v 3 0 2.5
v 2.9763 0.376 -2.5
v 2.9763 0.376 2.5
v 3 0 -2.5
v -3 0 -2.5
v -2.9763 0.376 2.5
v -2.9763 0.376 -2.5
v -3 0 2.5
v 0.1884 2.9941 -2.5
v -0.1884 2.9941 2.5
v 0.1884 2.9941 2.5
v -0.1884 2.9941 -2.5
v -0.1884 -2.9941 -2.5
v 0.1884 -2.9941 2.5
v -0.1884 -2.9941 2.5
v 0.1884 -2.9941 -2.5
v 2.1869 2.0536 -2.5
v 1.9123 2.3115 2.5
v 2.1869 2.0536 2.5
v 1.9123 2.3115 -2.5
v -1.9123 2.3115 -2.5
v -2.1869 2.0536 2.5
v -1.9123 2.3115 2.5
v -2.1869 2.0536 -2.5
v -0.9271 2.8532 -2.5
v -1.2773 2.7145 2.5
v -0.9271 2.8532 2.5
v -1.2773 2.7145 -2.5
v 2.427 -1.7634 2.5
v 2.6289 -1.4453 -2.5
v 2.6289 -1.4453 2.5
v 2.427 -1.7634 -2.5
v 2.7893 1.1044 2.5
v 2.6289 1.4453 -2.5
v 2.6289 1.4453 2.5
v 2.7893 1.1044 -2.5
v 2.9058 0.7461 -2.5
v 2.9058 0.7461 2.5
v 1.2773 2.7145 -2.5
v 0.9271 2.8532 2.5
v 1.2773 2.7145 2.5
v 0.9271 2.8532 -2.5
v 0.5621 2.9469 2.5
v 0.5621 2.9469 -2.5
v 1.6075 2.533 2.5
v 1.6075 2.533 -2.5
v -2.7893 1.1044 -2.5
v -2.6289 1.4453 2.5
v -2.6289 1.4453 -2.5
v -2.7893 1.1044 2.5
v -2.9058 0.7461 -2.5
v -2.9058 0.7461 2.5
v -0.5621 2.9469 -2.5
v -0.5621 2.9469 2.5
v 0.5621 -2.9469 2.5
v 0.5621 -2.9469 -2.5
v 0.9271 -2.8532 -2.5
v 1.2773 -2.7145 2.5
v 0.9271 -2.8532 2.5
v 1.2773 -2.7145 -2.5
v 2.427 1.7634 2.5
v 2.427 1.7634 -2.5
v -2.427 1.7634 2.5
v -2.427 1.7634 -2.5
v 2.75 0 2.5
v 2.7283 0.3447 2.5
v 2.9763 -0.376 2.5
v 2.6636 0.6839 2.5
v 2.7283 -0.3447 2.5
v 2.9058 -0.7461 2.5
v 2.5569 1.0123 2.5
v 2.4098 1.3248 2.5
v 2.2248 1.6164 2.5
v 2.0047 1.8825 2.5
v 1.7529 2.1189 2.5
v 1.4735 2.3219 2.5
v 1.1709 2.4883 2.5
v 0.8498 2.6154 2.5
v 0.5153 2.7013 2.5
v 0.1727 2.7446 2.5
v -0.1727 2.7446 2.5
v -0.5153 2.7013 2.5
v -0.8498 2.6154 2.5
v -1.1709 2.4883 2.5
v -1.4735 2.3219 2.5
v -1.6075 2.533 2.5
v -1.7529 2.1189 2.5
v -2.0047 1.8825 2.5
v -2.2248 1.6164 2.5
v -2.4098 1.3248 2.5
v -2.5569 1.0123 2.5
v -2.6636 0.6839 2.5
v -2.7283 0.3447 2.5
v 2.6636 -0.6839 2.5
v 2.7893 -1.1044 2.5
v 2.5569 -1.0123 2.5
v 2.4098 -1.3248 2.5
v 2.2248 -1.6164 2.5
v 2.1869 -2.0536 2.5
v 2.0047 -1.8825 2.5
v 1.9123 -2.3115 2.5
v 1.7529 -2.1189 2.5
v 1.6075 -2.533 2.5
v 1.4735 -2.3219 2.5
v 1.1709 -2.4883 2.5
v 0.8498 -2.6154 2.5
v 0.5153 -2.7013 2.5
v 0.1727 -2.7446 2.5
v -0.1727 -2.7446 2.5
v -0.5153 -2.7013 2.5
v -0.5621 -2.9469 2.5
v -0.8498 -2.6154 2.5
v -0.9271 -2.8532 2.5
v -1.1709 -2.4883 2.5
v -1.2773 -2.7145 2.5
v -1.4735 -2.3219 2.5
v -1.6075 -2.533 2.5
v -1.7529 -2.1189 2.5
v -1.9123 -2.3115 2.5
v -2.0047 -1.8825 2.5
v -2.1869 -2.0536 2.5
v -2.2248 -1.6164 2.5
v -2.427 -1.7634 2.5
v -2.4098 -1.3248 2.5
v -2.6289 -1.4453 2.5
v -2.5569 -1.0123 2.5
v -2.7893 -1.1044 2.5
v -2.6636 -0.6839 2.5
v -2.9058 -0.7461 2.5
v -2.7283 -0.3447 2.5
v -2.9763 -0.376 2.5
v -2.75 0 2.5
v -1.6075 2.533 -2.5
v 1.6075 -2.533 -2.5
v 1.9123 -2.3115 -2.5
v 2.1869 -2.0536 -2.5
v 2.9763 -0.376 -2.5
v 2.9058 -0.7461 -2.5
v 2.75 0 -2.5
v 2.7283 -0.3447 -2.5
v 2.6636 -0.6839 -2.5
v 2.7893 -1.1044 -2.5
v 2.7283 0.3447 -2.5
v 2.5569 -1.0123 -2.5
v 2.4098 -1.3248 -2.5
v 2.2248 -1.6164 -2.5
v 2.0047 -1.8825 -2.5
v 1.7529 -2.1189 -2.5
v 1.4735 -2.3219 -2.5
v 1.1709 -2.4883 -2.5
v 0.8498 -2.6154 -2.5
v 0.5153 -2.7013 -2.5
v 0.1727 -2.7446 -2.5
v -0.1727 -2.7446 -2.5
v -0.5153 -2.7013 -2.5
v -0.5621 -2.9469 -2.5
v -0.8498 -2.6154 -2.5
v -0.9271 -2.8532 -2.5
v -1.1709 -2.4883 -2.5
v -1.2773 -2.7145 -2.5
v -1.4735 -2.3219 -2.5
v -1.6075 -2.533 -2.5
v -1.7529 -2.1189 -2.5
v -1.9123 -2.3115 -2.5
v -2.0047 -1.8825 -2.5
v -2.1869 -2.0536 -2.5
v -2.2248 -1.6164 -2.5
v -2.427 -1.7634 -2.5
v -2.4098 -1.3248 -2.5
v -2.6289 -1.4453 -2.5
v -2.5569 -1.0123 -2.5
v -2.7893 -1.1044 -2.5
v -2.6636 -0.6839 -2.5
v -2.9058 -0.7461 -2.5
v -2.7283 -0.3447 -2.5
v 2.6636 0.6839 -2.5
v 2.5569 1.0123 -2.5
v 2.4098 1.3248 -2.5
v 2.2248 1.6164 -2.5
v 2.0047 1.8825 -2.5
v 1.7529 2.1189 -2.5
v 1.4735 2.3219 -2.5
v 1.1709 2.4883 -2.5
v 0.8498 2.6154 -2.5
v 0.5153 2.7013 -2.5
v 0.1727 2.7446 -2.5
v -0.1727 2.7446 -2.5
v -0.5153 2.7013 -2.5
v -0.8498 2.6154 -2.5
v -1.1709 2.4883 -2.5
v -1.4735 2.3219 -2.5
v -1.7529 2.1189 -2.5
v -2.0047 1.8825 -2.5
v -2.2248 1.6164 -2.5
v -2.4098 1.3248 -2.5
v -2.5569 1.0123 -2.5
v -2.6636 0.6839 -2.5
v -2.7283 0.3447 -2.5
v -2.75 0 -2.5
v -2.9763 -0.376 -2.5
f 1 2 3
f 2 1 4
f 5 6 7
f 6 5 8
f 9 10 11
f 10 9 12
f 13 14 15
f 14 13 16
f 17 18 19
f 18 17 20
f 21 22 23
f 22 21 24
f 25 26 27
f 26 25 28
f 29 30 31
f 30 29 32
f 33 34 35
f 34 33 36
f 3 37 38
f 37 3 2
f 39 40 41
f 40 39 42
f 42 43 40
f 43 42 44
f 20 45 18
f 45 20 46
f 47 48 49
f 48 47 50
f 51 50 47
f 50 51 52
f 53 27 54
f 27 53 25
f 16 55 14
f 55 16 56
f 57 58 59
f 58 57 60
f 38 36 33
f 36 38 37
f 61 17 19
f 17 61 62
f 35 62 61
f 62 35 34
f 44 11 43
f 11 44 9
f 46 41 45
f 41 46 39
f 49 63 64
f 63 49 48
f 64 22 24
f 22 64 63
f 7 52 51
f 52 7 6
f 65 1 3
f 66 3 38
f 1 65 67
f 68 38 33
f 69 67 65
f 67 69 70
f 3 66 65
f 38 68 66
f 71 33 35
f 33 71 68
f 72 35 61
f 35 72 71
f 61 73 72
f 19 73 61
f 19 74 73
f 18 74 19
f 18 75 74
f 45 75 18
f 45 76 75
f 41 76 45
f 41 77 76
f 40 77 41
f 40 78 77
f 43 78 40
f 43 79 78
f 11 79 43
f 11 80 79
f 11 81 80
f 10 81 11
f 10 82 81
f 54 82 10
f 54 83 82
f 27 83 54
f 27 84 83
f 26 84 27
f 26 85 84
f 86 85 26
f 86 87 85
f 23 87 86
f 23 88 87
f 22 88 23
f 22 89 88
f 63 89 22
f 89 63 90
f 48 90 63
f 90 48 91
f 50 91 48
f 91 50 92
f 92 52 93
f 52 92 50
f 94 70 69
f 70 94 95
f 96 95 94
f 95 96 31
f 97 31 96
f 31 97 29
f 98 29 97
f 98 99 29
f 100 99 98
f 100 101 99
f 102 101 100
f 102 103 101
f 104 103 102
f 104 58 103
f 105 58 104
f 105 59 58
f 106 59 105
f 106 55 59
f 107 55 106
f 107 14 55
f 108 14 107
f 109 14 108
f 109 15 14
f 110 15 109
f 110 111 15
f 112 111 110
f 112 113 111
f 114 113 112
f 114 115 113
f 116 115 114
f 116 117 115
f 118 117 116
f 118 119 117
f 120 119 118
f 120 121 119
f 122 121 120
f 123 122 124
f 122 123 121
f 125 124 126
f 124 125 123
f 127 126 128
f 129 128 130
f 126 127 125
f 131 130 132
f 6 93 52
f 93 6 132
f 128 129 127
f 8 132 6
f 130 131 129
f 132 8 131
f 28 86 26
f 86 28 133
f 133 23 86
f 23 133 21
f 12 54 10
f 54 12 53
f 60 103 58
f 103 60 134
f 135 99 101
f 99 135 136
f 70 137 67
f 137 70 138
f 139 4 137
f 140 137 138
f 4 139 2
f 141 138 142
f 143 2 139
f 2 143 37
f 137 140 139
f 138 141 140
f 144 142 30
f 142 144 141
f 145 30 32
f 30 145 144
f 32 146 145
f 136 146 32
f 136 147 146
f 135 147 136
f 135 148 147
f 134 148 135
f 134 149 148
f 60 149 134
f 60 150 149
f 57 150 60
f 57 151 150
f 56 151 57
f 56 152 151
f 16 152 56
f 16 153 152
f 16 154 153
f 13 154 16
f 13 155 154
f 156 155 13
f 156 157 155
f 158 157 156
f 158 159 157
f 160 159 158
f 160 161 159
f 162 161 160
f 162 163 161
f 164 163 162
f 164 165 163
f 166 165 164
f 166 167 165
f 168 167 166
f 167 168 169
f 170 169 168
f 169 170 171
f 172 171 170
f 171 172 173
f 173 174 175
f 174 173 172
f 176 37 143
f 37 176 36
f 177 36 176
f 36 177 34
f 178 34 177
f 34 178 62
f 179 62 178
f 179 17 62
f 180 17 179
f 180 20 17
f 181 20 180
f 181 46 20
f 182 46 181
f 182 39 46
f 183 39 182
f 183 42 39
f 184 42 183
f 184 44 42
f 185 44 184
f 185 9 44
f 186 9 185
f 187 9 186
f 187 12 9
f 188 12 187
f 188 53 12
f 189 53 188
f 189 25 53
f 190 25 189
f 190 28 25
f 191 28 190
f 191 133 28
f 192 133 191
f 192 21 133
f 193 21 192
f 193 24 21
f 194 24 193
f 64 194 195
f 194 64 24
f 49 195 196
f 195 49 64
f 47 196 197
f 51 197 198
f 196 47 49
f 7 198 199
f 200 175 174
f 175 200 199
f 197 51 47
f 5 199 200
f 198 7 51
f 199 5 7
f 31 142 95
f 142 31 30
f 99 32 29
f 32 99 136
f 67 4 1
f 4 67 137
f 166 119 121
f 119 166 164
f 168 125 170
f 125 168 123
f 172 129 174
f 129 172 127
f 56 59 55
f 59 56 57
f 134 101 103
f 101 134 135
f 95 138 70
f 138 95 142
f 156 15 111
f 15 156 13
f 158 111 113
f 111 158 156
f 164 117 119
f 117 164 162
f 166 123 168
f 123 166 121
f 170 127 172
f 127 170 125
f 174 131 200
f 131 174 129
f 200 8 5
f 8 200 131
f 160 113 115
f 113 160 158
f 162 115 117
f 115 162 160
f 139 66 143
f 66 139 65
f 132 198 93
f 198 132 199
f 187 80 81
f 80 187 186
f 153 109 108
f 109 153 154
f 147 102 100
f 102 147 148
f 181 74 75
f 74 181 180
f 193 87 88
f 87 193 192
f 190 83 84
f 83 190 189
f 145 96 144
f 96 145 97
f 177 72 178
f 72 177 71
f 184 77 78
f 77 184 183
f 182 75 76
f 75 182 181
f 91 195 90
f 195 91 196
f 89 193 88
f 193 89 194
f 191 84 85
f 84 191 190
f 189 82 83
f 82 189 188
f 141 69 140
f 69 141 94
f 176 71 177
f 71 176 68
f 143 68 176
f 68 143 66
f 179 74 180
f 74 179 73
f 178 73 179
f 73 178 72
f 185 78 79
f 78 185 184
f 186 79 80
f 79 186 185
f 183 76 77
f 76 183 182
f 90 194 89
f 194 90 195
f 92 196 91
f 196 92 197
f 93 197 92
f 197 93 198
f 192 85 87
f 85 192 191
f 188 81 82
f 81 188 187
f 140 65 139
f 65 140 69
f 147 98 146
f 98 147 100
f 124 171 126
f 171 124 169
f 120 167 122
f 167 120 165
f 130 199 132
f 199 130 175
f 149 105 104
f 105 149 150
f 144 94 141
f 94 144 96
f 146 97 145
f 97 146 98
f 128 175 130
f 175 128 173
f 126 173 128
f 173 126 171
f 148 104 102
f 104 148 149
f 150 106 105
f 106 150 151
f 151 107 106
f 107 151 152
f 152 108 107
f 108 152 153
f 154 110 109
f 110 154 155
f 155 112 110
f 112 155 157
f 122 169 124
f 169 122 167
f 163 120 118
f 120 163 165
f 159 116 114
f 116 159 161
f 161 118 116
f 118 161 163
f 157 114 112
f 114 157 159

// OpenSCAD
$fn = 50;


difference() {
	union() {
		translate(v = [0, 0, -2.5000000000]) {
			cylinder(h = 5, r = 3.0000000000);
		}
	}
	union() {
		translate(v = [0, 0, -100.0000000000]) {
			cylinder(h = 200, r = 2.7500000000);
		}
	}
}
